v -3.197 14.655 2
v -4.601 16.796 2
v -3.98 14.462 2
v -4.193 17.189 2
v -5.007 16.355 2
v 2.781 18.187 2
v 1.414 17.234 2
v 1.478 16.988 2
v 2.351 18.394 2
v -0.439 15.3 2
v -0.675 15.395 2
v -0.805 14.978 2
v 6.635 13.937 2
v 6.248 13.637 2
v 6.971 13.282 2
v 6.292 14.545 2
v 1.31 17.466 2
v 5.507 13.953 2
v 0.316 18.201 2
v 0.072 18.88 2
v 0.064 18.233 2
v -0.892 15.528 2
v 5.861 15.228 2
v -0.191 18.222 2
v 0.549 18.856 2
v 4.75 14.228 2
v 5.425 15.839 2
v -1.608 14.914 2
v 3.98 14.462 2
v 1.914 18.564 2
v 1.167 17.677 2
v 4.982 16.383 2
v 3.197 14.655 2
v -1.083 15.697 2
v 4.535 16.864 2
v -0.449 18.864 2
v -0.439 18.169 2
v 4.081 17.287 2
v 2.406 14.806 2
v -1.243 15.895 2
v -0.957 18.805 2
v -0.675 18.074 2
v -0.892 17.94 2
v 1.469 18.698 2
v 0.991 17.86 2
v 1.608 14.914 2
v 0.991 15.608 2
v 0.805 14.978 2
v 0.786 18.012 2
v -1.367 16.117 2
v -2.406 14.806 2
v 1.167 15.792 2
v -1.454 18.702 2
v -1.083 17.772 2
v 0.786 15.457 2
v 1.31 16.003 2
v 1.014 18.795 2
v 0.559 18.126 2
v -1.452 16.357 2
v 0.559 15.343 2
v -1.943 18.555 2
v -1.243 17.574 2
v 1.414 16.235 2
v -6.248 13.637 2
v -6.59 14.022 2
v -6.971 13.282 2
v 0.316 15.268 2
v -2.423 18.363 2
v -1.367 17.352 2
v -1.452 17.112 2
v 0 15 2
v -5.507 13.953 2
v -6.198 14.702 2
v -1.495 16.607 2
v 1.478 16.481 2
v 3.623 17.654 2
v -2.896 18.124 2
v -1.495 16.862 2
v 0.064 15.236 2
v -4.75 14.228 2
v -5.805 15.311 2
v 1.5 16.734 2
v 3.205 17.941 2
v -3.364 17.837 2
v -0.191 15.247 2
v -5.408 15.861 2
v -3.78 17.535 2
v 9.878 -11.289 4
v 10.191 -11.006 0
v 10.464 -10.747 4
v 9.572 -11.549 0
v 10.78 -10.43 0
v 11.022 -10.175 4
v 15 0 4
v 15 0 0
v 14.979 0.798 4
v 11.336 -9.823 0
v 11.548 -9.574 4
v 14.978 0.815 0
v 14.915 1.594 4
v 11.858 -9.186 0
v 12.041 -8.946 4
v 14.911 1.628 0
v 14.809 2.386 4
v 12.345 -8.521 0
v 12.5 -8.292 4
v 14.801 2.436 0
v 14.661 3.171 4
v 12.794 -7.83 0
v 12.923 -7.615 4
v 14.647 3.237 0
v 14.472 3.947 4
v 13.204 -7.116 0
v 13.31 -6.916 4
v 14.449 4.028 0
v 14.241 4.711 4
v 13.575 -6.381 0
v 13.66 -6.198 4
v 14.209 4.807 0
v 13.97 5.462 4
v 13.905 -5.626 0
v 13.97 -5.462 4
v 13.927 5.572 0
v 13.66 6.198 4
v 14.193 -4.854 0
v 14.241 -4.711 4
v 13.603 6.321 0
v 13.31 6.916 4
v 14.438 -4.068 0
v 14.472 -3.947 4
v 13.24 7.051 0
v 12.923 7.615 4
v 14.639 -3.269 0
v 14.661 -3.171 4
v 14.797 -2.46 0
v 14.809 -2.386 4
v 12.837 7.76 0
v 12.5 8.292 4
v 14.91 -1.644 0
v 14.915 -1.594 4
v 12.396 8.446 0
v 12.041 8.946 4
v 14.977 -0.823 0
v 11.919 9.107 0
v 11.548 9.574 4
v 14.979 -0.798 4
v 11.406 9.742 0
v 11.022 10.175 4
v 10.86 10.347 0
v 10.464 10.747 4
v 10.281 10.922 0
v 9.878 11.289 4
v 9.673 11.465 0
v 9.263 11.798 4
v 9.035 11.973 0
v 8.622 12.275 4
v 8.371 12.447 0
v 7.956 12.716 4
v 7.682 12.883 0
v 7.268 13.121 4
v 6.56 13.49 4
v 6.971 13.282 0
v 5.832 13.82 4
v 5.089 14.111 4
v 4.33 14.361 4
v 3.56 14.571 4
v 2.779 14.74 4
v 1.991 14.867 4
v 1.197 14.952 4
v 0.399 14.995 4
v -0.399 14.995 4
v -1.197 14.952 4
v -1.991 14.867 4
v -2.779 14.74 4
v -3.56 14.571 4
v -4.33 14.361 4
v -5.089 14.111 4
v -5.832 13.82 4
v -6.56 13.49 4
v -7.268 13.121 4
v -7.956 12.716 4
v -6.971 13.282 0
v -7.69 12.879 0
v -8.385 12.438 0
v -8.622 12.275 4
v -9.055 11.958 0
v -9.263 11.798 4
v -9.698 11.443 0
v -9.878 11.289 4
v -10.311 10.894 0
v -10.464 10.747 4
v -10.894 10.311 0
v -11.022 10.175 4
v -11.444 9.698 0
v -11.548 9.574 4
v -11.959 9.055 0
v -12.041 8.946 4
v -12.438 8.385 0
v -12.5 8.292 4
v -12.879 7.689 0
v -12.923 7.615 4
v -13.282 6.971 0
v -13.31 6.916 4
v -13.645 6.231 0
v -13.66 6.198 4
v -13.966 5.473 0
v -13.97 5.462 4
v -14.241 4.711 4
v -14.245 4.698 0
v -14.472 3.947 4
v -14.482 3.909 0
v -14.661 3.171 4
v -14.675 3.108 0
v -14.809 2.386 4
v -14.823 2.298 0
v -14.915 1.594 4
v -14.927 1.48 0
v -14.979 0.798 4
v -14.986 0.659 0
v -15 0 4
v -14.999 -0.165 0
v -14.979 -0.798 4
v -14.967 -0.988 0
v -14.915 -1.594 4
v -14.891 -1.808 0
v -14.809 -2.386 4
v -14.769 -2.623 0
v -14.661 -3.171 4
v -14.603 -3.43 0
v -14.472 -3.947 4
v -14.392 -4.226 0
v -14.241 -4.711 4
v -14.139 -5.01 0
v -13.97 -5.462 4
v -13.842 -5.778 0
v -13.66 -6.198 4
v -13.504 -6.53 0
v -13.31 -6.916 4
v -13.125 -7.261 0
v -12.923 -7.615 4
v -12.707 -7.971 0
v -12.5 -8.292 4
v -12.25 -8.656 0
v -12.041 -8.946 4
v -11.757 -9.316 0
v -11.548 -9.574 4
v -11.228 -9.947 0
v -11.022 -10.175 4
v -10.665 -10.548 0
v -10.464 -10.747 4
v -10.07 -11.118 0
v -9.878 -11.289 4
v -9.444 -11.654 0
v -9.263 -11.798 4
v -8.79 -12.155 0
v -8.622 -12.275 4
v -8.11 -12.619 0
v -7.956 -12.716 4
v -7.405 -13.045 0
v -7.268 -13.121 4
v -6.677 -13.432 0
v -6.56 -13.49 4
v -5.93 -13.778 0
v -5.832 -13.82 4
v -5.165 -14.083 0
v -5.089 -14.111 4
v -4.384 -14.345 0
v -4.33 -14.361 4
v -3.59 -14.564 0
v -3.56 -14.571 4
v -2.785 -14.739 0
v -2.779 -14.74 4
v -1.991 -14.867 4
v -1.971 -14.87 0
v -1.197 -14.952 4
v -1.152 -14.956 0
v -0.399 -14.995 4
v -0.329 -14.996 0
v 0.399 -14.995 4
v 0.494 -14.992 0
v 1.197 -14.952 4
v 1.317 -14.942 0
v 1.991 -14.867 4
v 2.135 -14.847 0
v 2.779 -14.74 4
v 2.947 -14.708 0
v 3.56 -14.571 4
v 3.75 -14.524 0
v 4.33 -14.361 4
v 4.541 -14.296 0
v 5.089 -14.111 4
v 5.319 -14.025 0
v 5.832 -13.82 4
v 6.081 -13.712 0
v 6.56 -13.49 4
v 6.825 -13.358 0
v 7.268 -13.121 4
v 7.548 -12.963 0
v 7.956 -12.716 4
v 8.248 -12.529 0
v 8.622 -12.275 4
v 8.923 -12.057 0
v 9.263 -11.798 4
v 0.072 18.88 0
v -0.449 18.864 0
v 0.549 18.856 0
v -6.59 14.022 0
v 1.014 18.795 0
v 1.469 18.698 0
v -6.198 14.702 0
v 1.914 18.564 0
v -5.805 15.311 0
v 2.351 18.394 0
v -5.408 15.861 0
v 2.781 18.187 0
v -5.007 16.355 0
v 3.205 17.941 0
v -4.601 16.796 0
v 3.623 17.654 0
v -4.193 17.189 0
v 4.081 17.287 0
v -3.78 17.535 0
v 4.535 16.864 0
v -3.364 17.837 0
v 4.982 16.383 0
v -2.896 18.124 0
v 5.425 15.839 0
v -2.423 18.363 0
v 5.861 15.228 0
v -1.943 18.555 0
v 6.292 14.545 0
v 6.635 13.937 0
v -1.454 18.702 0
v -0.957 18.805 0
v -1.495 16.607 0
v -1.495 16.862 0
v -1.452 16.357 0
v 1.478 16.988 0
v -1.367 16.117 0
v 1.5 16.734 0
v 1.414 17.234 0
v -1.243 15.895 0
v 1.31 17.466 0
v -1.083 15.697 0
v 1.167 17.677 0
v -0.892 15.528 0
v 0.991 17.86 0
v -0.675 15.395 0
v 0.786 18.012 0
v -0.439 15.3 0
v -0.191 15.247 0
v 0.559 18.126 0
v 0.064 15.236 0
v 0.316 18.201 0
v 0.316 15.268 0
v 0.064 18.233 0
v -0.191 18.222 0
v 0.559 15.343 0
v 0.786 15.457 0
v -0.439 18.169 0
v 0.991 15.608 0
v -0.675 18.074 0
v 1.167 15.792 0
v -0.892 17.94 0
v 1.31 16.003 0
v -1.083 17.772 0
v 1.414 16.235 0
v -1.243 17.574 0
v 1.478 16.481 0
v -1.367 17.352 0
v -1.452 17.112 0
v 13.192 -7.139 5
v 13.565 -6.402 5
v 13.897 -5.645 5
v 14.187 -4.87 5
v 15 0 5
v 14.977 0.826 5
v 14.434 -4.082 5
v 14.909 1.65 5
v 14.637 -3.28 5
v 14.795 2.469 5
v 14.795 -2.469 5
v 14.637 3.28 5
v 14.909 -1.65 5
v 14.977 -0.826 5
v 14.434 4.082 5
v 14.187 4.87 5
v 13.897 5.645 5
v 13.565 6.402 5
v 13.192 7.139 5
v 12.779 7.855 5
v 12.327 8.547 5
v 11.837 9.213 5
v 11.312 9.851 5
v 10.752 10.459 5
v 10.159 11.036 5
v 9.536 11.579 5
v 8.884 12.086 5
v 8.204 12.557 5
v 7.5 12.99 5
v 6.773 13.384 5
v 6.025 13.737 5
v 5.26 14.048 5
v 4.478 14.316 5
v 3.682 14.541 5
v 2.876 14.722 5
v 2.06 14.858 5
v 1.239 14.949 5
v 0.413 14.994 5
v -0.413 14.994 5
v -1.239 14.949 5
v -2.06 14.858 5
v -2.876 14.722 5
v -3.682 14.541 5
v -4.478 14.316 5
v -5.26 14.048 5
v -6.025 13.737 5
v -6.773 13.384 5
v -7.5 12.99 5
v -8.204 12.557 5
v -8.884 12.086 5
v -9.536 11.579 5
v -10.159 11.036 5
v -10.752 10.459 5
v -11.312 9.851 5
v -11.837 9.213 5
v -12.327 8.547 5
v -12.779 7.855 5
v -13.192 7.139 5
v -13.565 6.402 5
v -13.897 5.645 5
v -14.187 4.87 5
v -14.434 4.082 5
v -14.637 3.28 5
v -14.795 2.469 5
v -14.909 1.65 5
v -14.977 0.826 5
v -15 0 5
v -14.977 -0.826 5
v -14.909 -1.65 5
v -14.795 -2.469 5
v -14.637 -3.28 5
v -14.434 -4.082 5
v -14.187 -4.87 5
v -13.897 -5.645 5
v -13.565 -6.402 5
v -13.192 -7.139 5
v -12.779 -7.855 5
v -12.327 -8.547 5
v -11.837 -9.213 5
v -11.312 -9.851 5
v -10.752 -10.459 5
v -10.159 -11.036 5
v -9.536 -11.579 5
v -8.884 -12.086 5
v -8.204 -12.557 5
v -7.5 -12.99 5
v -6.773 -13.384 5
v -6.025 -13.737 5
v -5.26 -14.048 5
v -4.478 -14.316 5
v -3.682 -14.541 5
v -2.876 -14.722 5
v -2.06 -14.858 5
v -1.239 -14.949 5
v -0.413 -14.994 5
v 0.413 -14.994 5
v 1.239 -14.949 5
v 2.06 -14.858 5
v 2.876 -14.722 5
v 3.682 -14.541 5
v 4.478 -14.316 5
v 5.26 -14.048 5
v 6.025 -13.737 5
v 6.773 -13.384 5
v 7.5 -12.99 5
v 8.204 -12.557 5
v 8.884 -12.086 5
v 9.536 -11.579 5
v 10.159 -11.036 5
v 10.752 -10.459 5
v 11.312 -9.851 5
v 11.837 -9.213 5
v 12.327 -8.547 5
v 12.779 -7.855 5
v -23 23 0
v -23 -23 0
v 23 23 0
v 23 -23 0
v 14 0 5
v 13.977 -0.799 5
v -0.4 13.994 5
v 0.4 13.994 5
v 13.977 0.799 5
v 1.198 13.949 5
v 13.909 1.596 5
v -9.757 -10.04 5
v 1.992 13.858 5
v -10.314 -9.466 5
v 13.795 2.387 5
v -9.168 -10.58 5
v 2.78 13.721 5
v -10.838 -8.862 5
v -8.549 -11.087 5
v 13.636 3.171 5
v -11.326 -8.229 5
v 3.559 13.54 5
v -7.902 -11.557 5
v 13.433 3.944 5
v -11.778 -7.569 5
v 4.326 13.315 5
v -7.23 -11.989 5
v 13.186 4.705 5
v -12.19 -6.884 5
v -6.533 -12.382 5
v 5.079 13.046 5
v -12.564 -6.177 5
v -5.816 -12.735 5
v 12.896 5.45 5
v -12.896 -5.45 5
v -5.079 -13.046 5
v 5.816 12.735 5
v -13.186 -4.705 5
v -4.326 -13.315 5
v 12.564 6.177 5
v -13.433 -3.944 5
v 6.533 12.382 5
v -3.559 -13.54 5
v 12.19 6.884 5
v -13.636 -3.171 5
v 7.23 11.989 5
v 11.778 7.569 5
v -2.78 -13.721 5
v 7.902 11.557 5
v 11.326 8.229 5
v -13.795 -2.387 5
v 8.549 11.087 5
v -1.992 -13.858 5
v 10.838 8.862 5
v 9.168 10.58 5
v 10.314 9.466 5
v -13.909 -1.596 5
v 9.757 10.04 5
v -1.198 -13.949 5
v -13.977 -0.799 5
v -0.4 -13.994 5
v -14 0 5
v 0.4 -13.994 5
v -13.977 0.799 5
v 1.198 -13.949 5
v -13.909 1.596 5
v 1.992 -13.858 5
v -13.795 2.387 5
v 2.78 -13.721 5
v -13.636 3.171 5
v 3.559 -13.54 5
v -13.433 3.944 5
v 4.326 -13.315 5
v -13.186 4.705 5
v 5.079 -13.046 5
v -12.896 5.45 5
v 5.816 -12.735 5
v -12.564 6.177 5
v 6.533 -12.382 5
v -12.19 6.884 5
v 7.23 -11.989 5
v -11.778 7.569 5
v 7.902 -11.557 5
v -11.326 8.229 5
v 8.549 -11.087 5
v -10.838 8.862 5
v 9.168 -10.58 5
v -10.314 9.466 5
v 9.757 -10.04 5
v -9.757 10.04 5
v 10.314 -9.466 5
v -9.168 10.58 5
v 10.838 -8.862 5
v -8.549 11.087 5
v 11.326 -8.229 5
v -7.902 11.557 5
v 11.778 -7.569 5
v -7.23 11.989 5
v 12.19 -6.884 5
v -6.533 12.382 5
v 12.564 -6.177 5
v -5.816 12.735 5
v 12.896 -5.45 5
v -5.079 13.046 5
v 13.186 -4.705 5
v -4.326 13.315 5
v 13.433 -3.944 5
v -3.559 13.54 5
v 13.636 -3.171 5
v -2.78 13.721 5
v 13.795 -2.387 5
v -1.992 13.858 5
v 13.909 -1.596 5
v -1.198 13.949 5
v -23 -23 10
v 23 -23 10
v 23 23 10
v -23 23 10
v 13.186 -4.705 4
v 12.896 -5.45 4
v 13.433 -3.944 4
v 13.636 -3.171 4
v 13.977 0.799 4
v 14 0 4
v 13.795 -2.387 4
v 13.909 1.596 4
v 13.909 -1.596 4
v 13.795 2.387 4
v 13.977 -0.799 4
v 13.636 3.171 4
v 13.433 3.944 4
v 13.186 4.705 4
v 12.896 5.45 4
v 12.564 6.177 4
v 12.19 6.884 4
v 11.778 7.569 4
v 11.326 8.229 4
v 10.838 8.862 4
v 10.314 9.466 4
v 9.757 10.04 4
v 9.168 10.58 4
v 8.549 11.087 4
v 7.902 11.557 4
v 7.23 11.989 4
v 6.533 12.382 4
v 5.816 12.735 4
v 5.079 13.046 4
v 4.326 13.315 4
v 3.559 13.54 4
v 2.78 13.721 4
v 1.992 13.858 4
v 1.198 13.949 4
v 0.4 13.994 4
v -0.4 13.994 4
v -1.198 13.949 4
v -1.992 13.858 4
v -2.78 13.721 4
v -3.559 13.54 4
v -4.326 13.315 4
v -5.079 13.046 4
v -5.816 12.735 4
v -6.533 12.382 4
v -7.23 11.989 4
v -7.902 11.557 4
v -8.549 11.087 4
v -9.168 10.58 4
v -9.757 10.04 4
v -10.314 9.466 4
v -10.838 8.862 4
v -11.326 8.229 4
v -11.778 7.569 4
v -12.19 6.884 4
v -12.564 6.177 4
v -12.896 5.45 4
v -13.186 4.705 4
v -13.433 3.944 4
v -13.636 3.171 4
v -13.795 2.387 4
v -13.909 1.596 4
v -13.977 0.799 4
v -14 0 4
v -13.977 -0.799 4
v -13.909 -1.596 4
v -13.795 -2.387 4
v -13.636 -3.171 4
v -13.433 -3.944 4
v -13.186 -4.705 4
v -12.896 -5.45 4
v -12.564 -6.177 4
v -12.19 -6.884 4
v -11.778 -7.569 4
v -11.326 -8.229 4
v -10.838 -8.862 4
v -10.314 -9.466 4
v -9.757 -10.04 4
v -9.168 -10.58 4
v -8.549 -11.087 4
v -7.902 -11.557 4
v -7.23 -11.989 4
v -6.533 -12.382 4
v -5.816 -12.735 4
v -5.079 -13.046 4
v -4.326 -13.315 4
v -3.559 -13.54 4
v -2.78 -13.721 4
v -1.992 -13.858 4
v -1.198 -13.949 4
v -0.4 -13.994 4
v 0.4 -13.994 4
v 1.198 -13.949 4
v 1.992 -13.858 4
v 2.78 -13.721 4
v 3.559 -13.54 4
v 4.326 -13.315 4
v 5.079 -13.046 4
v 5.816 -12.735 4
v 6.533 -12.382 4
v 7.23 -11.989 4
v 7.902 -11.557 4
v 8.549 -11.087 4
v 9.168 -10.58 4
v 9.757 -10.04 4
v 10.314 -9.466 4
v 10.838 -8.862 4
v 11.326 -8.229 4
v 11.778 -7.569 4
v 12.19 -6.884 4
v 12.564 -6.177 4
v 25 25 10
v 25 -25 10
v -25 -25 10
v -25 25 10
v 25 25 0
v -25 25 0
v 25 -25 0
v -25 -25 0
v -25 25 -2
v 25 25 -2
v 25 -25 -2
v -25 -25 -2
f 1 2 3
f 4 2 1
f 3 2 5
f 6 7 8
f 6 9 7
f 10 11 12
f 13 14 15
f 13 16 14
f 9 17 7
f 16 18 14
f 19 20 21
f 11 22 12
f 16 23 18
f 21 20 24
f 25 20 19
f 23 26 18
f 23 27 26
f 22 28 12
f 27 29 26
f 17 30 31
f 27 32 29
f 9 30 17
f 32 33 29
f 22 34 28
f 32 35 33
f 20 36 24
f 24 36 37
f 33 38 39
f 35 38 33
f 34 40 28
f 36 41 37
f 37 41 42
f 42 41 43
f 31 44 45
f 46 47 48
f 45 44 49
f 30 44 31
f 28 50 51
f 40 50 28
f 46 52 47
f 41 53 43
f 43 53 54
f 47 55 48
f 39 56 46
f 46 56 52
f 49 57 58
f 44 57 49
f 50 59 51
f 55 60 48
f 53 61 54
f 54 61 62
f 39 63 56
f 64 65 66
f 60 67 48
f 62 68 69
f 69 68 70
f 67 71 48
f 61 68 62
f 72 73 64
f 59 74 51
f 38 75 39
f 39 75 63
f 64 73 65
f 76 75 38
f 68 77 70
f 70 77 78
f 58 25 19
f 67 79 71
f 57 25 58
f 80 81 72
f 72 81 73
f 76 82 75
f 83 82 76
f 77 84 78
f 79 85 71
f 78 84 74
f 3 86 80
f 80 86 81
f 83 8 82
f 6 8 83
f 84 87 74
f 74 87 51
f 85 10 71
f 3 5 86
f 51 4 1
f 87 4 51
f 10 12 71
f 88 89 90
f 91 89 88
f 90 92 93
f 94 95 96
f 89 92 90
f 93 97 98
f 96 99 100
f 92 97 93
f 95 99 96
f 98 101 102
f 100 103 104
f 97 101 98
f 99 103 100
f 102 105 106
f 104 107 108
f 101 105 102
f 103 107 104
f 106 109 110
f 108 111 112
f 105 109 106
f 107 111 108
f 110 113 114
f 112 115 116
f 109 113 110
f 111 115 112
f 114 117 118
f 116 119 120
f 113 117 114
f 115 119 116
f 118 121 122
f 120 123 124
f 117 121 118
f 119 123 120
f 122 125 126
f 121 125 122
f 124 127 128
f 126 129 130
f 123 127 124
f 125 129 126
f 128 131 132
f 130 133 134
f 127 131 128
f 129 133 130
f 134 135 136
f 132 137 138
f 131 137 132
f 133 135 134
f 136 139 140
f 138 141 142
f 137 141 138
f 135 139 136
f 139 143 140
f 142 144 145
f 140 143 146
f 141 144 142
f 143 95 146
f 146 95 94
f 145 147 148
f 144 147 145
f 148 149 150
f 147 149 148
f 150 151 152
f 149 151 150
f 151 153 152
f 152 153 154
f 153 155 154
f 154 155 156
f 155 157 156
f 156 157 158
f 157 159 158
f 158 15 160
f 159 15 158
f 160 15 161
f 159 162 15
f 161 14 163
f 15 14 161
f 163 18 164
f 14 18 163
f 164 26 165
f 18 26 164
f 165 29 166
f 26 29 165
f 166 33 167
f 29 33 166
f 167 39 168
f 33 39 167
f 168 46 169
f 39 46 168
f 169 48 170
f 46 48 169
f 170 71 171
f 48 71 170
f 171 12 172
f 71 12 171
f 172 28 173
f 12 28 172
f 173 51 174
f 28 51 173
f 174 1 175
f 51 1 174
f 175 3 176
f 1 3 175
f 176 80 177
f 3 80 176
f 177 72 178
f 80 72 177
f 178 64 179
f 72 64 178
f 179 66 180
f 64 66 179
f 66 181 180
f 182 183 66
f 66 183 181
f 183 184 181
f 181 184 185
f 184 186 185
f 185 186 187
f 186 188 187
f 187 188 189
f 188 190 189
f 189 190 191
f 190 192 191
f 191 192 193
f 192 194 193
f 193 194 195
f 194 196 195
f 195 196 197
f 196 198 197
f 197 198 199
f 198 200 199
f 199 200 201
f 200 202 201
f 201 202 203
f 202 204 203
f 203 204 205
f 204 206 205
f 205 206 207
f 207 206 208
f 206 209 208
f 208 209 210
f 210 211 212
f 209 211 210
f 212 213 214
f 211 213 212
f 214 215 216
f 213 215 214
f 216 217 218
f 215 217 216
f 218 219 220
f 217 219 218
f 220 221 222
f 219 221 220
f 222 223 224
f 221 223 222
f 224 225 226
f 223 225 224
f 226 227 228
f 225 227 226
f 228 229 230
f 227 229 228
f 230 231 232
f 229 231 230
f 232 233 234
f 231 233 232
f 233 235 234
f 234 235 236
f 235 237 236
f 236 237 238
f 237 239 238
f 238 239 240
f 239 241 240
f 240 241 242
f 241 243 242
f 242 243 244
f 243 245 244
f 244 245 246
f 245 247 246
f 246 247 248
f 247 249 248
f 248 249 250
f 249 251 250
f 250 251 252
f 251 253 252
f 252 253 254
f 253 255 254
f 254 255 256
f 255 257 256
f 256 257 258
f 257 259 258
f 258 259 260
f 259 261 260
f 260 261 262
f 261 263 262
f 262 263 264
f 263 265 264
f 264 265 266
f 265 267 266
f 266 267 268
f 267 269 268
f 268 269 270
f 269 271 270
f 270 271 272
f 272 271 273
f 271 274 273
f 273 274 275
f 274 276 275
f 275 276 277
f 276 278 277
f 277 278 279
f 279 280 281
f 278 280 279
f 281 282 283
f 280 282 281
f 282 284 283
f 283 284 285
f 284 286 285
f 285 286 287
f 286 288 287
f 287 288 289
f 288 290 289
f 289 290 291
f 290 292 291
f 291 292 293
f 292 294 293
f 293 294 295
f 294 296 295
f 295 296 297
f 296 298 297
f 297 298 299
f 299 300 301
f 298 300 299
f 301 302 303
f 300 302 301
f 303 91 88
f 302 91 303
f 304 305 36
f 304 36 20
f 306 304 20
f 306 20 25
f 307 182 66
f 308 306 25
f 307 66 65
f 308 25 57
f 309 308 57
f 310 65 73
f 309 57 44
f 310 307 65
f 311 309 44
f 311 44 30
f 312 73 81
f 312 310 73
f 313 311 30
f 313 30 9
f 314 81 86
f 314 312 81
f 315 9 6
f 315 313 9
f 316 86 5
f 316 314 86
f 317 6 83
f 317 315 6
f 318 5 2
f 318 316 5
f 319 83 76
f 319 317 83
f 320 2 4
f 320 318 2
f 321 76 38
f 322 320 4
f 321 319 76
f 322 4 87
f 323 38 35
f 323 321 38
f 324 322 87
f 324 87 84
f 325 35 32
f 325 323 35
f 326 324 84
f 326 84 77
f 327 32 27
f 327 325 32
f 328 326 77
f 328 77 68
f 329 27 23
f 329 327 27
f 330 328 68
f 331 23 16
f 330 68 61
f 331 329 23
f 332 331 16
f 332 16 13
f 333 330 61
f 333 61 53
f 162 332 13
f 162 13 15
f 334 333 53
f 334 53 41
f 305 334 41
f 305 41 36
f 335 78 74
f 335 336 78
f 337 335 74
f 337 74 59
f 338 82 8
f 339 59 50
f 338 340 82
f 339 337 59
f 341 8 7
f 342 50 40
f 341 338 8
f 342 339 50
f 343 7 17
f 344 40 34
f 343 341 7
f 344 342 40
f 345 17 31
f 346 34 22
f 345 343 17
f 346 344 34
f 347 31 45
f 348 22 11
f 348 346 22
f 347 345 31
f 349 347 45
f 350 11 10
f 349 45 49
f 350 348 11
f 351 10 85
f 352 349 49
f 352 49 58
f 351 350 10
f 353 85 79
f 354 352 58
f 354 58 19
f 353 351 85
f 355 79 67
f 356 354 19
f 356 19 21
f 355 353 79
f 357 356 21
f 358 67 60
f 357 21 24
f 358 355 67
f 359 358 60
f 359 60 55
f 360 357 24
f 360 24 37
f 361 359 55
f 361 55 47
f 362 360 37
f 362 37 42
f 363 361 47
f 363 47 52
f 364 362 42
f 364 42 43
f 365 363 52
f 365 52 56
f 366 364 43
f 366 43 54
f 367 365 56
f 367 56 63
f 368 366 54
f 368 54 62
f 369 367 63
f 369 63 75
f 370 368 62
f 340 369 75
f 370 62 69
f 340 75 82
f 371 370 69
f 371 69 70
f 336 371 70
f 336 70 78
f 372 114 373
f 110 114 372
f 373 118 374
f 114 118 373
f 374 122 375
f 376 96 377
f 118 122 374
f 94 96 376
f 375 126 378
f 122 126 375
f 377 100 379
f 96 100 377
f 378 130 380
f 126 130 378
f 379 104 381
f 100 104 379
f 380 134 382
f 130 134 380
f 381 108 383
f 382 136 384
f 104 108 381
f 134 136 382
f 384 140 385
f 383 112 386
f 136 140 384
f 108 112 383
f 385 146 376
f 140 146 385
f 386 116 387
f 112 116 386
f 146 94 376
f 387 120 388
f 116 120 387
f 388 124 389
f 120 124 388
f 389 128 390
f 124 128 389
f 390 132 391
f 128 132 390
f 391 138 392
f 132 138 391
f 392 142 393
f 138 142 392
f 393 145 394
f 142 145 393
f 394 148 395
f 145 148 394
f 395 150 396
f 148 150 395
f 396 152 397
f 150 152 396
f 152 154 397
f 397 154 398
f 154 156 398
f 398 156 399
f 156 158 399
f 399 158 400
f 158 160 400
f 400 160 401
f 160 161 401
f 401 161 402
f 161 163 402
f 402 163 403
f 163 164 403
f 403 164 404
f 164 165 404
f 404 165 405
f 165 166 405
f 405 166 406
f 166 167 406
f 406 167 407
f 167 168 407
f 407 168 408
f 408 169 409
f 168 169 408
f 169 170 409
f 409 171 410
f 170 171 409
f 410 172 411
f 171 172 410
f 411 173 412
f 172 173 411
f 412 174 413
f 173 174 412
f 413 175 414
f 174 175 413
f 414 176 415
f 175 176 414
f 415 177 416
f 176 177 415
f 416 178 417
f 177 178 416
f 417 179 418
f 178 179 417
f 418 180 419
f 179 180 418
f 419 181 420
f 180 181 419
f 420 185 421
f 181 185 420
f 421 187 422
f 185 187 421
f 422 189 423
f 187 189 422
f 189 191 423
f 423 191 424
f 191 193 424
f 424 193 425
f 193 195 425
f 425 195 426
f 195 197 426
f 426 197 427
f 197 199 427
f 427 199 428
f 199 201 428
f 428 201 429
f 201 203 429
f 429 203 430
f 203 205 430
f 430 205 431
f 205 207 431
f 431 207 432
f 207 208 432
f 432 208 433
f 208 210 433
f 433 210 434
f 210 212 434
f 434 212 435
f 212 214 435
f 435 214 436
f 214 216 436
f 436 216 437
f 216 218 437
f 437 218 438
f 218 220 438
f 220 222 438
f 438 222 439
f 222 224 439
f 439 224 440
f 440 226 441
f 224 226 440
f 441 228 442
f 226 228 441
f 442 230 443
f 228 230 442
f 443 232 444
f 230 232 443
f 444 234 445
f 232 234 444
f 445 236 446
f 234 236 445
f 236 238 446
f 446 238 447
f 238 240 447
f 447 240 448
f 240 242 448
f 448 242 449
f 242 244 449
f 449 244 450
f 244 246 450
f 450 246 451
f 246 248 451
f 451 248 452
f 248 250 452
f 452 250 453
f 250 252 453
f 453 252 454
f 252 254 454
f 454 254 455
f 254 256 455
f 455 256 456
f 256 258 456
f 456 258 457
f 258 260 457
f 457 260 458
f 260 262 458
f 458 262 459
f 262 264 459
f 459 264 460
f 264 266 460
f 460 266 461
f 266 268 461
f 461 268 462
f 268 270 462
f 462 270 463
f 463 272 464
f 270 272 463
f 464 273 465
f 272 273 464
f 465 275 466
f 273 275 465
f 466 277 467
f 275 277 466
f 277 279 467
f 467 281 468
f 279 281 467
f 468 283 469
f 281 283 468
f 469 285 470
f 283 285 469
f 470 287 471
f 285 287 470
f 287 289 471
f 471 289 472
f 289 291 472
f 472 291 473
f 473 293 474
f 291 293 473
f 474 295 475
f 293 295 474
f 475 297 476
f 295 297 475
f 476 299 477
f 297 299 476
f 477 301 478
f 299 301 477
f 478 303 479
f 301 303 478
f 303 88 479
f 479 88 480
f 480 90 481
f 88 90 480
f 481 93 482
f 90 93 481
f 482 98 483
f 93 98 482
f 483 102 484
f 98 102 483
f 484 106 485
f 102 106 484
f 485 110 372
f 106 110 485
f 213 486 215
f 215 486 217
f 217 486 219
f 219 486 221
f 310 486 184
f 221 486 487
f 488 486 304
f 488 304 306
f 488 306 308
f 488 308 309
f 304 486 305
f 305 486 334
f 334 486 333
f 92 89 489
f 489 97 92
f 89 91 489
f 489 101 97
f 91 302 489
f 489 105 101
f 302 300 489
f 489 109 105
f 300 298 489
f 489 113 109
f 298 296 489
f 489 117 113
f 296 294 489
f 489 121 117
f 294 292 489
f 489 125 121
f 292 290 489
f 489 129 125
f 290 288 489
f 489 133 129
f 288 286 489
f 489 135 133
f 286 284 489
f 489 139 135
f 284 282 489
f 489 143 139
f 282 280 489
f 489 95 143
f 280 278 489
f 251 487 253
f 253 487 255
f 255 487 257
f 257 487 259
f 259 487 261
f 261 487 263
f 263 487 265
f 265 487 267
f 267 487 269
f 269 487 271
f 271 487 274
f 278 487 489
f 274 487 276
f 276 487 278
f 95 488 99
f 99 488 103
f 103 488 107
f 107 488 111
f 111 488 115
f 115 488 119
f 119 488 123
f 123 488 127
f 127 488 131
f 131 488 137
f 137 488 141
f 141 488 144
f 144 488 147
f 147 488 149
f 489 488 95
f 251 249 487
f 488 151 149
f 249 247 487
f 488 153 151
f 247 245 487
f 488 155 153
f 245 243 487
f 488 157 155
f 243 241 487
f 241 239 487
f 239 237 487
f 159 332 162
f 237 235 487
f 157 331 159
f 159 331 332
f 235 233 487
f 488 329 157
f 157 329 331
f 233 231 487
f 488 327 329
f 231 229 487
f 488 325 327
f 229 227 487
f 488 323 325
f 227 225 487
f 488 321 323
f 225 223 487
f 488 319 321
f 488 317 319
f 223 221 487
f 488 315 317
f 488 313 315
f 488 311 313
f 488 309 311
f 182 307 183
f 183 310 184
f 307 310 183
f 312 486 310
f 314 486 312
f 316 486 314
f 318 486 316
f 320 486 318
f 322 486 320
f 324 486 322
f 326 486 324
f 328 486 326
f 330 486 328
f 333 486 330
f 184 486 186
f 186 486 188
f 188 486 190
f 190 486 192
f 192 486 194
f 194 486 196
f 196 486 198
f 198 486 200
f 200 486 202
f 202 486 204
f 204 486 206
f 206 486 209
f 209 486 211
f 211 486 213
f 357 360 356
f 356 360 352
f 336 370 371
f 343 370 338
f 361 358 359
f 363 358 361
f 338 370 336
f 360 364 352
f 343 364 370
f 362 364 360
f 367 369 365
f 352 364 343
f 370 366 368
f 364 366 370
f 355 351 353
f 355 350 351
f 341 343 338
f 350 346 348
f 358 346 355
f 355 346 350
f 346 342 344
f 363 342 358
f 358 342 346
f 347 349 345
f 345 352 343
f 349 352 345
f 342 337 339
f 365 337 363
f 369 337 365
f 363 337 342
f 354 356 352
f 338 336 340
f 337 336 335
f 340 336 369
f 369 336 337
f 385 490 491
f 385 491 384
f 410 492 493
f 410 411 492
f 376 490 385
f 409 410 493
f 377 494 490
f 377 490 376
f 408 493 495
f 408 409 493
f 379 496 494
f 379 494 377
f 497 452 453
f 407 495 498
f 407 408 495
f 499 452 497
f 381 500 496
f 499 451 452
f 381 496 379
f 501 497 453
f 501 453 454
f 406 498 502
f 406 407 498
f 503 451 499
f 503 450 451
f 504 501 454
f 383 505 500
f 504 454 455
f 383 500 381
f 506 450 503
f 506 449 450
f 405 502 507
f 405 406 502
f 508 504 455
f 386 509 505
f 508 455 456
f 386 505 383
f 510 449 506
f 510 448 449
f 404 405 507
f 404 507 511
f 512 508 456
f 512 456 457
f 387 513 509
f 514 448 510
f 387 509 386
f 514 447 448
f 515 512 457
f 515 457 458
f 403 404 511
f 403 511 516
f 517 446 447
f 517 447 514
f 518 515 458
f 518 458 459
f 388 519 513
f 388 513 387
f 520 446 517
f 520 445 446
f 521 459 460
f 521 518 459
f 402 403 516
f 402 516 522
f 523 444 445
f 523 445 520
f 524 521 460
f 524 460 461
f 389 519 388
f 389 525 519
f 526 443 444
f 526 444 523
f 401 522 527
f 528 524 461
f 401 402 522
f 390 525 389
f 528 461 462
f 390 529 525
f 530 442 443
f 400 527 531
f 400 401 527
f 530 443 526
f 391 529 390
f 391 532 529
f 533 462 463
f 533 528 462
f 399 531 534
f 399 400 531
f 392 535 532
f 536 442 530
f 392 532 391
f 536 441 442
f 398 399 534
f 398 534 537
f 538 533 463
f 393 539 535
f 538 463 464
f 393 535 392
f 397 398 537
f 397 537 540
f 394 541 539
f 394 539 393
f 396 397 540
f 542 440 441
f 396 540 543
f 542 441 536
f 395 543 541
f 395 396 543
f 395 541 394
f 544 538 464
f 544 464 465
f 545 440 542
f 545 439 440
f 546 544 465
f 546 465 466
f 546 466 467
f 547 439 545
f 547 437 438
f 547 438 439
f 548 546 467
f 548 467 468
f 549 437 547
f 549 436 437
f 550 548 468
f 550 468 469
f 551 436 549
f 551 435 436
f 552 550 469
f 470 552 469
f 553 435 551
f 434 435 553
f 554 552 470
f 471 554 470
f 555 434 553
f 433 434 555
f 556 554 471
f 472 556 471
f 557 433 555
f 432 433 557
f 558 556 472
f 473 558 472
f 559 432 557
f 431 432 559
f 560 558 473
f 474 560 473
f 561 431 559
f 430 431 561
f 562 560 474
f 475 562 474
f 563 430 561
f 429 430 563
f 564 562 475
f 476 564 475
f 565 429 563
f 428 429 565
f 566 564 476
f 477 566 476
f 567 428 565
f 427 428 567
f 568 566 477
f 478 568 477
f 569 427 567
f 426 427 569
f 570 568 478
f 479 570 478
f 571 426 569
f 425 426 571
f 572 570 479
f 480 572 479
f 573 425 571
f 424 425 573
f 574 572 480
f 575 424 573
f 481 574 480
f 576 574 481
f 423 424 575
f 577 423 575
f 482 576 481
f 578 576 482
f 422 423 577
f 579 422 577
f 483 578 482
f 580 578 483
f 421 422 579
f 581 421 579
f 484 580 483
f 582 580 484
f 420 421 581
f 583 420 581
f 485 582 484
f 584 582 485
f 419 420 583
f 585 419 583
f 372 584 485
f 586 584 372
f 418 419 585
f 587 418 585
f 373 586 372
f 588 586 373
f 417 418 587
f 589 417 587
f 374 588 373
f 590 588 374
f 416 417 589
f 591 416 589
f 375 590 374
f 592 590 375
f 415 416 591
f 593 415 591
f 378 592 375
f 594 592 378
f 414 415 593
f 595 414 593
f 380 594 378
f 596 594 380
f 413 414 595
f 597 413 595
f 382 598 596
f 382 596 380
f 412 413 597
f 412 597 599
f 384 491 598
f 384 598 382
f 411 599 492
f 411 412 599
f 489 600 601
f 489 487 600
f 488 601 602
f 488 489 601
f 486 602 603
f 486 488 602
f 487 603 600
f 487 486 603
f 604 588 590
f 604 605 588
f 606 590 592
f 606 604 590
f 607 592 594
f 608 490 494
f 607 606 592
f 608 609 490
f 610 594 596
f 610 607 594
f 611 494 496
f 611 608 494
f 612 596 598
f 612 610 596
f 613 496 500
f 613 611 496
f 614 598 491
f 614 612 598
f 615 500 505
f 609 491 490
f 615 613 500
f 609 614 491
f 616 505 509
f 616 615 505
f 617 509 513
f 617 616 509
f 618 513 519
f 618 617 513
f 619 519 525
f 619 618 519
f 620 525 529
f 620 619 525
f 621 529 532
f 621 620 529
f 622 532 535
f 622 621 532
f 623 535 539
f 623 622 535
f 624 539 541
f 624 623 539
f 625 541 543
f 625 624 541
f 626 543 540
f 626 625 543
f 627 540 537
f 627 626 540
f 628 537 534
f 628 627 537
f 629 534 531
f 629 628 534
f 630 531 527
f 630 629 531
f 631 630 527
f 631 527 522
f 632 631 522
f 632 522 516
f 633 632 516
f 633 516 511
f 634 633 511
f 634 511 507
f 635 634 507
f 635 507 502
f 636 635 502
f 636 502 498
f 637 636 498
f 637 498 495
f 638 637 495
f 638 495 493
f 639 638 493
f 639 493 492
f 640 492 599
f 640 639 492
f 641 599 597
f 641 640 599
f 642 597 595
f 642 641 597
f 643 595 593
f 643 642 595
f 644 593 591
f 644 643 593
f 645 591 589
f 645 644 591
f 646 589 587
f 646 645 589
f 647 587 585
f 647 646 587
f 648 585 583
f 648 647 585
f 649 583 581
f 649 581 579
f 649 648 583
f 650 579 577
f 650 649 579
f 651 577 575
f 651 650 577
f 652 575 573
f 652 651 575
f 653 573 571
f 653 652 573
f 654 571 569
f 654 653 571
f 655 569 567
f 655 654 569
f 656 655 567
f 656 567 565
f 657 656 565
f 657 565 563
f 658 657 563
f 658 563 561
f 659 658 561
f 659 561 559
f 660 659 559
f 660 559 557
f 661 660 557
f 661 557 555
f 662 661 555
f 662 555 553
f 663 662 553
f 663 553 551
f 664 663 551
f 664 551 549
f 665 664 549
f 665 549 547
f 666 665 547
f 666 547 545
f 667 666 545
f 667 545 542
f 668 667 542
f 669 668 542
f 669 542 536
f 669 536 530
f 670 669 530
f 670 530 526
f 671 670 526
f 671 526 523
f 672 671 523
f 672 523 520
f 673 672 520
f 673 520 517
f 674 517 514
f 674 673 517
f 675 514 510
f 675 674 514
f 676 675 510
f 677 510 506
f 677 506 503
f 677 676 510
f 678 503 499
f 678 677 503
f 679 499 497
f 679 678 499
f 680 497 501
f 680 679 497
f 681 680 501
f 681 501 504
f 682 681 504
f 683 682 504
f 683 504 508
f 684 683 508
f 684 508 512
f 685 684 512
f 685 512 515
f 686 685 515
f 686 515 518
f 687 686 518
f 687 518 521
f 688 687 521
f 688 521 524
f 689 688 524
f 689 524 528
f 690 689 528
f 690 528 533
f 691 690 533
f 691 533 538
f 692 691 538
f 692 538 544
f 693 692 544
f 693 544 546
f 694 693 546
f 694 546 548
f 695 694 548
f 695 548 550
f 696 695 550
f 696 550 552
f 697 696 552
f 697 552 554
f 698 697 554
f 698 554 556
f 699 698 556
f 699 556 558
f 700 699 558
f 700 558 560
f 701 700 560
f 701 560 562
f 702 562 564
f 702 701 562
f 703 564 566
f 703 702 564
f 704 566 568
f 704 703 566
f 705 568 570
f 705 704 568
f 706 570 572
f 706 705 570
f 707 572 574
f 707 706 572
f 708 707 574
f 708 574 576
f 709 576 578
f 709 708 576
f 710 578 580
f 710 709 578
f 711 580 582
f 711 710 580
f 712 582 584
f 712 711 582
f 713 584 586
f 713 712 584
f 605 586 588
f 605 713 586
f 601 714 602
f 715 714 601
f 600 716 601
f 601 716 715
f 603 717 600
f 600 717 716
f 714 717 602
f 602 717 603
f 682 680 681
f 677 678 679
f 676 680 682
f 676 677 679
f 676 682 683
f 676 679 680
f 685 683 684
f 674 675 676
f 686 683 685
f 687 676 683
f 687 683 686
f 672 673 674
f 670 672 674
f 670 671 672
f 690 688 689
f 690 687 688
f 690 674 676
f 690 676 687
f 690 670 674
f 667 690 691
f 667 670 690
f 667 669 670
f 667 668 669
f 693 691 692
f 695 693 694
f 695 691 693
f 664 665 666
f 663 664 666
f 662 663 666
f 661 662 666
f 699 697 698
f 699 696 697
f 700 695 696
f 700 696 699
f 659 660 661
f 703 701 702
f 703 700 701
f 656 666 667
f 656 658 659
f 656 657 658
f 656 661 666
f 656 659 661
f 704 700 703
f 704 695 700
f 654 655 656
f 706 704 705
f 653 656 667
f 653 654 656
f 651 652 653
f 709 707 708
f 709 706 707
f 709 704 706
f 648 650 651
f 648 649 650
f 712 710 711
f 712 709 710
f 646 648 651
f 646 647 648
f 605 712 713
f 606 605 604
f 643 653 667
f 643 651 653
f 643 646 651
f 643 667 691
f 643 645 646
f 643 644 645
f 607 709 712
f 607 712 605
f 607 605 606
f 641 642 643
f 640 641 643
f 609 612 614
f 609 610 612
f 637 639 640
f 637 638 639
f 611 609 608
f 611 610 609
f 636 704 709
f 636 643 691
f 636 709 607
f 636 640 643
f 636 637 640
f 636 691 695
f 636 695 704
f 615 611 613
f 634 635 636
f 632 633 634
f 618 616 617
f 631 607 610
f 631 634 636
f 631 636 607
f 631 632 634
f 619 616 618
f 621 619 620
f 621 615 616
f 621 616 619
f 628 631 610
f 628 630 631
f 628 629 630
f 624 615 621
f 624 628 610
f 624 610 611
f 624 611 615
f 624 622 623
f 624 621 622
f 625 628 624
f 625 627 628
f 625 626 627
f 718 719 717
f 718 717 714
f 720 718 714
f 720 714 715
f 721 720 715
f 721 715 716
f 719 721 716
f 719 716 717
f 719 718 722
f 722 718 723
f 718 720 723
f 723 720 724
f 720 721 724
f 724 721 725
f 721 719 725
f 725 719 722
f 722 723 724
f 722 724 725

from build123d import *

# Parameters (mm, degrees)
SKETCH_R      = 15
PAD_DEPTH     = 4
SKETCH001_R   = 1.5
PAD001_DEPTH  = 2
SKETCH002_R   = 15
SKETCH002_R_2 = 14
PAD002_DEPTH  = 5
SKETCH003_W   = 50
SKETCH003_H   = 50
PAD003_DEPTH  = 2
SKETCH004_W   = 50
SKETCH004_H   = 50
SKETCH004_W_2 = 46
SKETCH004_H_2 = 46
PAD004_DEPTH  = 10


with BuildPart() as part:
    # Sketch → Pad (new body)
    with BuildSketch(Plane.XY):
        Circle(SKETCH_R)
    extrude(amount=PAD_DEPTH)

    # Sketch001 → Pad001 (join)
    with BuildSketch(Plane.XY):
        with BuildLine():
            add(Edge.make_bspline(
                [(-6.970964, 13.281779), (-4.960107, 17.400153), (0, 20.361549), (4.960107, 17.400153), (6.970964, 13.281779)],
                knots=[0, 0, 0, 0, 0.5, 1, 1, 1, 1], degree=3))
            Line((6.970964, 13.281779), (-6.970964, 13.281779))
        make_face()
        with Locations((0, 16.734485)):
            Circle(SKETCH001_R, mode=Mode.SUBTRACT)
    extrude(amount=PAD001_DEPTH)

    # Sketch002 → Pad002 (join)
    with BuildSketch(Plane.XY):
        Circle(SKETCH002_R)
        Circle(SKETCH002_R_2, mode=Mode.SUBTRACT)
    extrude(amount=PAD002_DEPTH)

    # Sketch003 → Pad003 (join)
    with BuildSketch(Plane.XY):
        Rectangle(SKETCH003_W, SKETCH003_H)
    extrude(amount=-PAD003_DEPTH)

    # Sketch004 → Pad004 (join)
    with BuildSketch(Plane.XY):
        Rectangle(SKETCH004_W, SKETCH004_H)
        Rectangle(SKETCH004_W_2, SKETCH004_H_2, mode=Mode.SUBTRACT)
    extrude(amount=PAD004_DEPTH)


solid = part.part
